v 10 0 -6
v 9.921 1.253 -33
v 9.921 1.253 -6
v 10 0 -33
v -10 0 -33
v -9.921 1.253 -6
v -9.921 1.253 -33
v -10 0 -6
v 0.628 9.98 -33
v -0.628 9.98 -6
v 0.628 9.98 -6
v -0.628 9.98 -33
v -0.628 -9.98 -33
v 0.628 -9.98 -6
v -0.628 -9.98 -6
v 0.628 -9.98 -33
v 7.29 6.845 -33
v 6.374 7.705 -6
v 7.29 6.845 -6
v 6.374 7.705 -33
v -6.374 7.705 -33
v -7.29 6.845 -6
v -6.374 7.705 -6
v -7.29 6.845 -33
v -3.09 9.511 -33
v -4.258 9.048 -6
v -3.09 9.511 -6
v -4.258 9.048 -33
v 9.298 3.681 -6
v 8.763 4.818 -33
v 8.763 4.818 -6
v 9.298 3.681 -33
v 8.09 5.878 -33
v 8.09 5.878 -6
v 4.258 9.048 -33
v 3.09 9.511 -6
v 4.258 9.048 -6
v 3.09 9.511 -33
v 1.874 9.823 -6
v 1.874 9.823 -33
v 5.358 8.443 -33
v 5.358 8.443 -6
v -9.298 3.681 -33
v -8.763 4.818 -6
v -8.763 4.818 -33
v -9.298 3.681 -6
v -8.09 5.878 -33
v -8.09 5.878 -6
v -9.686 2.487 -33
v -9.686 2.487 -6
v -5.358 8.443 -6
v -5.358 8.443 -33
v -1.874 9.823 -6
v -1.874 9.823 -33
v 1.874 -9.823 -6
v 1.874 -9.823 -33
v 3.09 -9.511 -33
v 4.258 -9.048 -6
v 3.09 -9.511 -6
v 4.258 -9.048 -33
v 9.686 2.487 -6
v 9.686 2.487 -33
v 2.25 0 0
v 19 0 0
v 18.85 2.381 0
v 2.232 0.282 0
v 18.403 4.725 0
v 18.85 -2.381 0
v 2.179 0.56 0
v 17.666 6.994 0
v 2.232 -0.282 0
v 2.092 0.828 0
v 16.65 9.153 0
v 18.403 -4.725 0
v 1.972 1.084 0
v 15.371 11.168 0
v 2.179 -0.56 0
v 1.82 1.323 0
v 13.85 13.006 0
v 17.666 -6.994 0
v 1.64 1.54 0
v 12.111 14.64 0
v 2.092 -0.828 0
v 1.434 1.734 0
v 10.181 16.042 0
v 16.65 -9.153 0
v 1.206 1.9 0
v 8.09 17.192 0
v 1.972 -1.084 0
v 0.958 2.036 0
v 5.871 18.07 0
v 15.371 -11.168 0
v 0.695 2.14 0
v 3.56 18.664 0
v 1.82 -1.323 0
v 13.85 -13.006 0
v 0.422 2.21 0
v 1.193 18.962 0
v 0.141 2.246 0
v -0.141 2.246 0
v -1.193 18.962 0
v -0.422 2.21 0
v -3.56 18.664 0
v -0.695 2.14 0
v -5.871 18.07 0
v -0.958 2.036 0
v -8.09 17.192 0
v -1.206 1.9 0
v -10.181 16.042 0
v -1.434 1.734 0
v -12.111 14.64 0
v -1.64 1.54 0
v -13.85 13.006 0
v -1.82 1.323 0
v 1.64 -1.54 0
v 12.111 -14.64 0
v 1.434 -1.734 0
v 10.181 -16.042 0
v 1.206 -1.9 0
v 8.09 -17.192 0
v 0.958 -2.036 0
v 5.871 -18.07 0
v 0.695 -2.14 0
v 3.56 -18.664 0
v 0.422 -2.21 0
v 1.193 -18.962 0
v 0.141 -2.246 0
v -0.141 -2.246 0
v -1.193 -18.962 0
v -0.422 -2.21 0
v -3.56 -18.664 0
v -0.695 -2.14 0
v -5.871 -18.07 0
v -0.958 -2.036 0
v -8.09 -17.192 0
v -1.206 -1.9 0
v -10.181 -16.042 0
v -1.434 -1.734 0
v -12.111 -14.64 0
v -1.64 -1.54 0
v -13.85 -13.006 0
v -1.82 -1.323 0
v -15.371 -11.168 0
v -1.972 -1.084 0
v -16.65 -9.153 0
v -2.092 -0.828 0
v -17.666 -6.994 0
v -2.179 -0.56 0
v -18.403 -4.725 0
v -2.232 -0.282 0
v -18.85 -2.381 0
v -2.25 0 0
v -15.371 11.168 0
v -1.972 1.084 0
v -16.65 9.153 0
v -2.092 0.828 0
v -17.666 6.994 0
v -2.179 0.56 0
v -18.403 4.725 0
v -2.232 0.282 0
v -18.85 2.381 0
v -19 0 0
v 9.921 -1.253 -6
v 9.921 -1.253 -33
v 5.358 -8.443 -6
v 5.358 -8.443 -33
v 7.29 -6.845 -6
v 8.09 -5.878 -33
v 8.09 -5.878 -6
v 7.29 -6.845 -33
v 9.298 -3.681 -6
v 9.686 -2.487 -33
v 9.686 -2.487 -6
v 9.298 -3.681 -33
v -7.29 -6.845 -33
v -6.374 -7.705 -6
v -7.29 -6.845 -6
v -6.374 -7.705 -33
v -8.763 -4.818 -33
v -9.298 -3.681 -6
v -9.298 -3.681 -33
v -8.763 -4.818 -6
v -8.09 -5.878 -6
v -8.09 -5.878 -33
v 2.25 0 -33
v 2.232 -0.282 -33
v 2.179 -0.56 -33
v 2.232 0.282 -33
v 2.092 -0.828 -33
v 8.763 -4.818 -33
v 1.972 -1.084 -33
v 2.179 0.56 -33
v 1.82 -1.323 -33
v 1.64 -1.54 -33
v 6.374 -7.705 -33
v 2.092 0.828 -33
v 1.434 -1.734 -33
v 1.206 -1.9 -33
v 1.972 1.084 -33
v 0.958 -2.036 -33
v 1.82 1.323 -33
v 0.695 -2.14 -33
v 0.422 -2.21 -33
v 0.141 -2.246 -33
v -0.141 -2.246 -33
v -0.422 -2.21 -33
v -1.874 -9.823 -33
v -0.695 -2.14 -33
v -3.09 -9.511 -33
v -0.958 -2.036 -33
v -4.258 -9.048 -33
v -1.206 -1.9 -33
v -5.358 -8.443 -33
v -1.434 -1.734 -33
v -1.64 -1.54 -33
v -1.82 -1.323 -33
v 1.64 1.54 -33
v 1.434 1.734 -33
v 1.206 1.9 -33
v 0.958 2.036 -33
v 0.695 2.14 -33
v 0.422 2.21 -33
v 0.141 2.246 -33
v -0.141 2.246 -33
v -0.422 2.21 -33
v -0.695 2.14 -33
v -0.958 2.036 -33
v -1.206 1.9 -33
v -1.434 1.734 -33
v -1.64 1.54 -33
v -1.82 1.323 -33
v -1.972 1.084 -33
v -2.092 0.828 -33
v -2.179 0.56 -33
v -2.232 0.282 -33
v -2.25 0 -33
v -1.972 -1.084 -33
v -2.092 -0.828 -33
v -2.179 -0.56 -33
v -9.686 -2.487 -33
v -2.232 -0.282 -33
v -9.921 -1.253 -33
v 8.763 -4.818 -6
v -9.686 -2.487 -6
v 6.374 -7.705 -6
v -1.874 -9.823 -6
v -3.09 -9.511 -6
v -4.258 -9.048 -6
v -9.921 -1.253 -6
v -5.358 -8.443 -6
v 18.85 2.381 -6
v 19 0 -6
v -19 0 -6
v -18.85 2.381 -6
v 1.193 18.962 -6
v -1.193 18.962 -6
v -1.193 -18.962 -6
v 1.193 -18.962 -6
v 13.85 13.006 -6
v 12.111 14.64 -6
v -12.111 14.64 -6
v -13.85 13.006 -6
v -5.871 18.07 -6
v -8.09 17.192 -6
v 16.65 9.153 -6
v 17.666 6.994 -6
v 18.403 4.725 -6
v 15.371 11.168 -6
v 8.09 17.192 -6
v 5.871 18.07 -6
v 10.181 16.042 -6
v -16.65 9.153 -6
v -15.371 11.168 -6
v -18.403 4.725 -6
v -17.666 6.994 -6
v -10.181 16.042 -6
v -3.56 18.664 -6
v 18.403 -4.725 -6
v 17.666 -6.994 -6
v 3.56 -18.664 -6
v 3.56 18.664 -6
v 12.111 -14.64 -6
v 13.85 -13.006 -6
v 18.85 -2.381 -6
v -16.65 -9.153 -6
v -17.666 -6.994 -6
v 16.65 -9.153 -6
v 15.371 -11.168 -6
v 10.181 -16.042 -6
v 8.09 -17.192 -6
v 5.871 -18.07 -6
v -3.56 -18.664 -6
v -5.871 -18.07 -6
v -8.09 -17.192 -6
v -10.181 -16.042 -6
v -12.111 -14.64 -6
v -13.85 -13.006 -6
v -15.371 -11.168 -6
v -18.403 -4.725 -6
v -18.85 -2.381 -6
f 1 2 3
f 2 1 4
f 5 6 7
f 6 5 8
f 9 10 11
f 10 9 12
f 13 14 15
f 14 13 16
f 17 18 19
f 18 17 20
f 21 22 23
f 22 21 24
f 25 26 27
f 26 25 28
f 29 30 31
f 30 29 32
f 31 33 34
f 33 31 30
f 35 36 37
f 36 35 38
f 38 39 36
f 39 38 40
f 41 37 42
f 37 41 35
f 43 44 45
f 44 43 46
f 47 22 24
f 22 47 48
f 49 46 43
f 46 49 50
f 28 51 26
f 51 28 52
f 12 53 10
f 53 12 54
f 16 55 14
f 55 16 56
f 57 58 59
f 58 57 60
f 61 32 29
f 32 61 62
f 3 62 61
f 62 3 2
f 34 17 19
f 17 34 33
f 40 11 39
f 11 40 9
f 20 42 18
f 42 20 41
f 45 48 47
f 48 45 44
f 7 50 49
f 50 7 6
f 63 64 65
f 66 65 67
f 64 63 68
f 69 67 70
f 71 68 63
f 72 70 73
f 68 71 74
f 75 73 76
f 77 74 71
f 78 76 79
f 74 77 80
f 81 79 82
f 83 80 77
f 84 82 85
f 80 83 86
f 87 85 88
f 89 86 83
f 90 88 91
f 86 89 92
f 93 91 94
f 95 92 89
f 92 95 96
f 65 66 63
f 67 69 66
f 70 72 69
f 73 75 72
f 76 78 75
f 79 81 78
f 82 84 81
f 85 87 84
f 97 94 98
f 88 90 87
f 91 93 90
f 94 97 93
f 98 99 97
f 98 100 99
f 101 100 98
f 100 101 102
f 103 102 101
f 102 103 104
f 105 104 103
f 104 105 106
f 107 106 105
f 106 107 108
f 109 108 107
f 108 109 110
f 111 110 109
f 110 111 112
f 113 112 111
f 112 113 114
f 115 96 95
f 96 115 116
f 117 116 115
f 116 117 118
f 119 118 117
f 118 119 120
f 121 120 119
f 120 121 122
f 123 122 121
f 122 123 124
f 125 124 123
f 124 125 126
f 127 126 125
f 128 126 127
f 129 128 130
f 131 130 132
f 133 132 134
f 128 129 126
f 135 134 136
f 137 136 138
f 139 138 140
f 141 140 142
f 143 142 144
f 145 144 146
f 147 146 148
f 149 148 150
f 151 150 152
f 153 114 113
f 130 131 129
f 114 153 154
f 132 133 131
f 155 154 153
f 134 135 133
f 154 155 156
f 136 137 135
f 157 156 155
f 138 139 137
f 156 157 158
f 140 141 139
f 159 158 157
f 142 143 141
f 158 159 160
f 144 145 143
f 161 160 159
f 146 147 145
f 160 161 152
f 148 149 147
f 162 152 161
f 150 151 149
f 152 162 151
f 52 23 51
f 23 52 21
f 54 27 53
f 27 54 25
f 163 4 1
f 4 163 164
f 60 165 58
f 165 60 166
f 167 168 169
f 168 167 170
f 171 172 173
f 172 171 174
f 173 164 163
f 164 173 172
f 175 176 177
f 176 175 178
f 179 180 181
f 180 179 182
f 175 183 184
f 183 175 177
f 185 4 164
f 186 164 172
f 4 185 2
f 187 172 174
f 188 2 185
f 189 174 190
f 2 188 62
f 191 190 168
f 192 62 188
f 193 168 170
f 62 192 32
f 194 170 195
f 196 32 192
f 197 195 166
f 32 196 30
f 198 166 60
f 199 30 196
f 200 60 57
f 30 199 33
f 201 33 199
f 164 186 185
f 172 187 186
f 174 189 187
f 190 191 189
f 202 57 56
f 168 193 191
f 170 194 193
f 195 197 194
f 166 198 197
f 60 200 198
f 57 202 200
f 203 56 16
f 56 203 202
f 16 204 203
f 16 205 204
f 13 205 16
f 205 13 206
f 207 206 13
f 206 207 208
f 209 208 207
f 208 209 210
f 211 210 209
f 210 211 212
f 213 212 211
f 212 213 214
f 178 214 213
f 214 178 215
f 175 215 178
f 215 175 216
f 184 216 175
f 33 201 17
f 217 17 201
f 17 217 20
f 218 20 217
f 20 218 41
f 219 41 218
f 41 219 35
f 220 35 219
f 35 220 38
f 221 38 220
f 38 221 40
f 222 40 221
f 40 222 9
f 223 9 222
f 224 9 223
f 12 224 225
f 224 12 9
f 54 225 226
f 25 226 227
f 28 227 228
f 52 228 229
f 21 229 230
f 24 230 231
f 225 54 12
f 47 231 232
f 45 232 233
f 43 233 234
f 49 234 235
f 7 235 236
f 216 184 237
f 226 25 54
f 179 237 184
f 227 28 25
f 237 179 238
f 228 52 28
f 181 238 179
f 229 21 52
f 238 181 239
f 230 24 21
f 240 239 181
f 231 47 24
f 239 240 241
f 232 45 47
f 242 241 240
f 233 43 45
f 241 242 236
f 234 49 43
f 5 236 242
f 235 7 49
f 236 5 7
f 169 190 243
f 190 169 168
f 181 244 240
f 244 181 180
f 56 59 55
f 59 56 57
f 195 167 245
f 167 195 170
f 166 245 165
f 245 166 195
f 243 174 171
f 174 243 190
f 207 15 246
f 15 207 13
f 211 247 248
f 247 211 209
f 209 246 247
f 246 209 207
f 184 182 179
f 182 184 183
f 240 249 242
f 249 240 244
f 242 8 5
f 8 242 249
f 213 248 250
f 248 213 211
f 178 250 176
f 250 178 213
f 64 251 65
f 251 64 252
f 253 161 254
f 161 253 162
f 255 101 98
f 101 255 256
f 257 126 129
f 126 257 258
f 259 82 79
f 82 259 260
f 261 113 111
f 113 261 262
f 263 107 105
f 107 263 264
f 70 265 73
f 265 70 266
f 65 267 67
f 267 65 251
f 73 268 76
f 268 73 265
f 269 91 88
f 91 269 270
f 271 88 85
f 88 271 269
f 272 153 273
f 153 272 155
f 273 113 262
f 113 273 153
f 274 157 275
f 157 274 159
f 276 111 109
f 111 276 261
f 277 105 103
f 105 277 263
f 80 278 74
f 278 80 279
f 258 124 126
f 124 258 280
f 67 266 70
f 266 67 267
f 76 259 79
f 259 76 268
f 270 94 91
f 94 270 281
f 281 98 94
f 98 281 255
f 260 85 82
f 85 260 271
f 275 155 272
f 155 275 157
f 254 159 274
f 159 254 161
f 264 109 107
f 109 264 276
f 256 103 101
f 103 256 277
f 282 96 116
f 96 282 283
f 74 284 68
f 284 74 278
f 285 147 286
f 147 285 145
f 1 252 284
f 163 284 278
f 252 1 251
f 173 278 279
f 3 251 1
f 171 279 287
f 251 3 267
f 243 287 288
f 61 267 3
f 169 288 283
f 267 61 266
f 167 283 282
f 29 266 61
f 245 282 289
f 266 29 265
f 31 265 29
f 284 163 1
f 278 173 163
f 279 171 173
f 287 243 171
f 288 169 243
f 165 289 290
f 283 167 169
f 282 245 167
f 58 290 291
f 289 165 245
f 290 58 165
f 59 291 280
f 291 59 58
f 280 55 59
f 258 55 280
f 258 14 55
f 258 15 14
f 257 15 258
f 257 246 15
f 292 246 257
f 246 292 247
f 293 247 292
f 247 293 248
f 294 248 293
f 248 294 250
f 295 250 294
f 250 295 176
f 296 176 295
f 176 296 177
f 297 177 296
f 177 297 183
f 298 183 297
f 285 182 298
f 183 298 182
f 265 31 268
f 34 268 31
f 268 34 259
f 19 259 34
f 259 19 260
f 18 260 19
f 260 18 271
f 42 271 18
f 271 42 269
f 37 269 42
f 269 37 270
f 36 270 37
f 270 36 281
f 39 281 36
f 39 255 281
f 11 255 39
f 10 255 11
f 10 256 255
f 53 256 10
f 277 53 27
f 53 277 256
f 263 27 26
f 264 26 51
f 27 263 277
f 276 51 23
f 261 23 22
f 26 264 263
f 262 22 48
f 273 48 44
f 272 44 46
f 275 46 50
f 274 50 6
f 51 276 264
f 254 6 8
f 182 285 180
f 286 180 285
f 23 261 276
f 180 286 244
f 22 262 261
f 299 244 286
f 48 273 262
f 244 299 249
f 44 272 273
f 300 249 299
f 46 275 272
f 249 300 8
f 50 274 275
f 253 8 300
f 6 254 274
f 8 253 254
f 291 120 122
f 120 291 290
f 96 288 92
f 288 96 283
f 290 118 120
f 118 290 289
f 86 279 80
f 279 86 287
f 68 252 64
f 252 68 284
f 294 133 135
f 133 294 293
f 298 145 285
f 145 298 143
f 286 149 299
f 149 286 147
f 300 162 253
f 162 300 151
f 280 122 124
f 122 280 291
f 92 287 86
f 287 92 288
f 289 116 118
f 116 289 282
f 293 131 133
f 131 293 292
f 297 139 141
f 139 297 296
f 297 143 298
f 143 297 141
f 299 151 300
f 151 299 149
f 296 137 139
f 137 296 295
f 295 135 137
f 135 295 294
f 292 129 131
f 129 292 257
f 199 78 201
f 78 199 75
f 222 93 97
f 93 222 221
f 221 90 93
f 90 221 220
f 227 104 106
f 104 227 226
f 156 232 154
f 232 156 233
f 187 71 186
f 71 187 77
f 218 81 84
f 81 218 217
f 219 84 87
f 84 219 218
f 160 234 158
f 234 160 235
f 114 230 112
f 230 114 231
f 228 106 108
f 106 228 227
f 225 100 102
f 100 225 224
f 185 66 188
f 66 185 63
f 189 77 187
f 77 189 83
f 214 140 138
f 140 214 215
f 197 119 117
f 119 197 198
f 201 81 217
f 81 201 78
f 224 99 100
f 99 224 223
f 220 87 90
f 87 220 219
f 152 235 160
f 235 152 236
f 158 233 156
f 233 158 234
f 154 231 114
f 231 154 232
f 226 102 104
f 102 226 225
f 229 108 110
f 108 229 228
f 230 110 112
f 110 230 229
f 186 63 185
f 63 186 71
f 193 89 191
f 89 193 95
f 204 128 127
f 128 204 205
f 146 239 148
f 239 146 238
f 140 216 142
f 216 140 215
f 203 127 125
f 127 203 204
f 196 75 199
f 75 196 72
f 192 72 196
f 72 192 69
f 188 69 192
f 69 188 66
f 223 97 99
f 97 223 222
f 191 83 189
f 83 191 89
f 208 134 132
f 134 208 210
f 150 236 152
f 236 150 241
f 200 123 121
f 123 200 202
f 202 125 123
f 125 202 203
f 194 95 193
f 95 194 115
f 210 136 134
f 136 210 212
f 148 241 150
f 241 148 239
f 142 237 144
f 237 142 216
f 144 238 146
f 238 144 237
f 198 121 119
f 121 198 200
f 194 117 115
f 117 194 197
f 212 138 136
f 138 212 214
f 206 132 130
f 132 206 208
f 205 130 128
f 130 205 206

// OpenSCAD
$fn = 50;


difference() {
	union() {
		translate(v = [0, 0, -33.0000000000]) {
			cylinder(h = 33, r = 10.0000000000);
		}
		translate(v = [0, 0, -6.0000000000]) {
			cylinder(h = 6, r = 19.0000000000);
		}
	}
	union() {
		#translate(v = [0, 0, -33]) {
			cylinder(h = 33, r = 2.2500000000);
		}
	}
}
